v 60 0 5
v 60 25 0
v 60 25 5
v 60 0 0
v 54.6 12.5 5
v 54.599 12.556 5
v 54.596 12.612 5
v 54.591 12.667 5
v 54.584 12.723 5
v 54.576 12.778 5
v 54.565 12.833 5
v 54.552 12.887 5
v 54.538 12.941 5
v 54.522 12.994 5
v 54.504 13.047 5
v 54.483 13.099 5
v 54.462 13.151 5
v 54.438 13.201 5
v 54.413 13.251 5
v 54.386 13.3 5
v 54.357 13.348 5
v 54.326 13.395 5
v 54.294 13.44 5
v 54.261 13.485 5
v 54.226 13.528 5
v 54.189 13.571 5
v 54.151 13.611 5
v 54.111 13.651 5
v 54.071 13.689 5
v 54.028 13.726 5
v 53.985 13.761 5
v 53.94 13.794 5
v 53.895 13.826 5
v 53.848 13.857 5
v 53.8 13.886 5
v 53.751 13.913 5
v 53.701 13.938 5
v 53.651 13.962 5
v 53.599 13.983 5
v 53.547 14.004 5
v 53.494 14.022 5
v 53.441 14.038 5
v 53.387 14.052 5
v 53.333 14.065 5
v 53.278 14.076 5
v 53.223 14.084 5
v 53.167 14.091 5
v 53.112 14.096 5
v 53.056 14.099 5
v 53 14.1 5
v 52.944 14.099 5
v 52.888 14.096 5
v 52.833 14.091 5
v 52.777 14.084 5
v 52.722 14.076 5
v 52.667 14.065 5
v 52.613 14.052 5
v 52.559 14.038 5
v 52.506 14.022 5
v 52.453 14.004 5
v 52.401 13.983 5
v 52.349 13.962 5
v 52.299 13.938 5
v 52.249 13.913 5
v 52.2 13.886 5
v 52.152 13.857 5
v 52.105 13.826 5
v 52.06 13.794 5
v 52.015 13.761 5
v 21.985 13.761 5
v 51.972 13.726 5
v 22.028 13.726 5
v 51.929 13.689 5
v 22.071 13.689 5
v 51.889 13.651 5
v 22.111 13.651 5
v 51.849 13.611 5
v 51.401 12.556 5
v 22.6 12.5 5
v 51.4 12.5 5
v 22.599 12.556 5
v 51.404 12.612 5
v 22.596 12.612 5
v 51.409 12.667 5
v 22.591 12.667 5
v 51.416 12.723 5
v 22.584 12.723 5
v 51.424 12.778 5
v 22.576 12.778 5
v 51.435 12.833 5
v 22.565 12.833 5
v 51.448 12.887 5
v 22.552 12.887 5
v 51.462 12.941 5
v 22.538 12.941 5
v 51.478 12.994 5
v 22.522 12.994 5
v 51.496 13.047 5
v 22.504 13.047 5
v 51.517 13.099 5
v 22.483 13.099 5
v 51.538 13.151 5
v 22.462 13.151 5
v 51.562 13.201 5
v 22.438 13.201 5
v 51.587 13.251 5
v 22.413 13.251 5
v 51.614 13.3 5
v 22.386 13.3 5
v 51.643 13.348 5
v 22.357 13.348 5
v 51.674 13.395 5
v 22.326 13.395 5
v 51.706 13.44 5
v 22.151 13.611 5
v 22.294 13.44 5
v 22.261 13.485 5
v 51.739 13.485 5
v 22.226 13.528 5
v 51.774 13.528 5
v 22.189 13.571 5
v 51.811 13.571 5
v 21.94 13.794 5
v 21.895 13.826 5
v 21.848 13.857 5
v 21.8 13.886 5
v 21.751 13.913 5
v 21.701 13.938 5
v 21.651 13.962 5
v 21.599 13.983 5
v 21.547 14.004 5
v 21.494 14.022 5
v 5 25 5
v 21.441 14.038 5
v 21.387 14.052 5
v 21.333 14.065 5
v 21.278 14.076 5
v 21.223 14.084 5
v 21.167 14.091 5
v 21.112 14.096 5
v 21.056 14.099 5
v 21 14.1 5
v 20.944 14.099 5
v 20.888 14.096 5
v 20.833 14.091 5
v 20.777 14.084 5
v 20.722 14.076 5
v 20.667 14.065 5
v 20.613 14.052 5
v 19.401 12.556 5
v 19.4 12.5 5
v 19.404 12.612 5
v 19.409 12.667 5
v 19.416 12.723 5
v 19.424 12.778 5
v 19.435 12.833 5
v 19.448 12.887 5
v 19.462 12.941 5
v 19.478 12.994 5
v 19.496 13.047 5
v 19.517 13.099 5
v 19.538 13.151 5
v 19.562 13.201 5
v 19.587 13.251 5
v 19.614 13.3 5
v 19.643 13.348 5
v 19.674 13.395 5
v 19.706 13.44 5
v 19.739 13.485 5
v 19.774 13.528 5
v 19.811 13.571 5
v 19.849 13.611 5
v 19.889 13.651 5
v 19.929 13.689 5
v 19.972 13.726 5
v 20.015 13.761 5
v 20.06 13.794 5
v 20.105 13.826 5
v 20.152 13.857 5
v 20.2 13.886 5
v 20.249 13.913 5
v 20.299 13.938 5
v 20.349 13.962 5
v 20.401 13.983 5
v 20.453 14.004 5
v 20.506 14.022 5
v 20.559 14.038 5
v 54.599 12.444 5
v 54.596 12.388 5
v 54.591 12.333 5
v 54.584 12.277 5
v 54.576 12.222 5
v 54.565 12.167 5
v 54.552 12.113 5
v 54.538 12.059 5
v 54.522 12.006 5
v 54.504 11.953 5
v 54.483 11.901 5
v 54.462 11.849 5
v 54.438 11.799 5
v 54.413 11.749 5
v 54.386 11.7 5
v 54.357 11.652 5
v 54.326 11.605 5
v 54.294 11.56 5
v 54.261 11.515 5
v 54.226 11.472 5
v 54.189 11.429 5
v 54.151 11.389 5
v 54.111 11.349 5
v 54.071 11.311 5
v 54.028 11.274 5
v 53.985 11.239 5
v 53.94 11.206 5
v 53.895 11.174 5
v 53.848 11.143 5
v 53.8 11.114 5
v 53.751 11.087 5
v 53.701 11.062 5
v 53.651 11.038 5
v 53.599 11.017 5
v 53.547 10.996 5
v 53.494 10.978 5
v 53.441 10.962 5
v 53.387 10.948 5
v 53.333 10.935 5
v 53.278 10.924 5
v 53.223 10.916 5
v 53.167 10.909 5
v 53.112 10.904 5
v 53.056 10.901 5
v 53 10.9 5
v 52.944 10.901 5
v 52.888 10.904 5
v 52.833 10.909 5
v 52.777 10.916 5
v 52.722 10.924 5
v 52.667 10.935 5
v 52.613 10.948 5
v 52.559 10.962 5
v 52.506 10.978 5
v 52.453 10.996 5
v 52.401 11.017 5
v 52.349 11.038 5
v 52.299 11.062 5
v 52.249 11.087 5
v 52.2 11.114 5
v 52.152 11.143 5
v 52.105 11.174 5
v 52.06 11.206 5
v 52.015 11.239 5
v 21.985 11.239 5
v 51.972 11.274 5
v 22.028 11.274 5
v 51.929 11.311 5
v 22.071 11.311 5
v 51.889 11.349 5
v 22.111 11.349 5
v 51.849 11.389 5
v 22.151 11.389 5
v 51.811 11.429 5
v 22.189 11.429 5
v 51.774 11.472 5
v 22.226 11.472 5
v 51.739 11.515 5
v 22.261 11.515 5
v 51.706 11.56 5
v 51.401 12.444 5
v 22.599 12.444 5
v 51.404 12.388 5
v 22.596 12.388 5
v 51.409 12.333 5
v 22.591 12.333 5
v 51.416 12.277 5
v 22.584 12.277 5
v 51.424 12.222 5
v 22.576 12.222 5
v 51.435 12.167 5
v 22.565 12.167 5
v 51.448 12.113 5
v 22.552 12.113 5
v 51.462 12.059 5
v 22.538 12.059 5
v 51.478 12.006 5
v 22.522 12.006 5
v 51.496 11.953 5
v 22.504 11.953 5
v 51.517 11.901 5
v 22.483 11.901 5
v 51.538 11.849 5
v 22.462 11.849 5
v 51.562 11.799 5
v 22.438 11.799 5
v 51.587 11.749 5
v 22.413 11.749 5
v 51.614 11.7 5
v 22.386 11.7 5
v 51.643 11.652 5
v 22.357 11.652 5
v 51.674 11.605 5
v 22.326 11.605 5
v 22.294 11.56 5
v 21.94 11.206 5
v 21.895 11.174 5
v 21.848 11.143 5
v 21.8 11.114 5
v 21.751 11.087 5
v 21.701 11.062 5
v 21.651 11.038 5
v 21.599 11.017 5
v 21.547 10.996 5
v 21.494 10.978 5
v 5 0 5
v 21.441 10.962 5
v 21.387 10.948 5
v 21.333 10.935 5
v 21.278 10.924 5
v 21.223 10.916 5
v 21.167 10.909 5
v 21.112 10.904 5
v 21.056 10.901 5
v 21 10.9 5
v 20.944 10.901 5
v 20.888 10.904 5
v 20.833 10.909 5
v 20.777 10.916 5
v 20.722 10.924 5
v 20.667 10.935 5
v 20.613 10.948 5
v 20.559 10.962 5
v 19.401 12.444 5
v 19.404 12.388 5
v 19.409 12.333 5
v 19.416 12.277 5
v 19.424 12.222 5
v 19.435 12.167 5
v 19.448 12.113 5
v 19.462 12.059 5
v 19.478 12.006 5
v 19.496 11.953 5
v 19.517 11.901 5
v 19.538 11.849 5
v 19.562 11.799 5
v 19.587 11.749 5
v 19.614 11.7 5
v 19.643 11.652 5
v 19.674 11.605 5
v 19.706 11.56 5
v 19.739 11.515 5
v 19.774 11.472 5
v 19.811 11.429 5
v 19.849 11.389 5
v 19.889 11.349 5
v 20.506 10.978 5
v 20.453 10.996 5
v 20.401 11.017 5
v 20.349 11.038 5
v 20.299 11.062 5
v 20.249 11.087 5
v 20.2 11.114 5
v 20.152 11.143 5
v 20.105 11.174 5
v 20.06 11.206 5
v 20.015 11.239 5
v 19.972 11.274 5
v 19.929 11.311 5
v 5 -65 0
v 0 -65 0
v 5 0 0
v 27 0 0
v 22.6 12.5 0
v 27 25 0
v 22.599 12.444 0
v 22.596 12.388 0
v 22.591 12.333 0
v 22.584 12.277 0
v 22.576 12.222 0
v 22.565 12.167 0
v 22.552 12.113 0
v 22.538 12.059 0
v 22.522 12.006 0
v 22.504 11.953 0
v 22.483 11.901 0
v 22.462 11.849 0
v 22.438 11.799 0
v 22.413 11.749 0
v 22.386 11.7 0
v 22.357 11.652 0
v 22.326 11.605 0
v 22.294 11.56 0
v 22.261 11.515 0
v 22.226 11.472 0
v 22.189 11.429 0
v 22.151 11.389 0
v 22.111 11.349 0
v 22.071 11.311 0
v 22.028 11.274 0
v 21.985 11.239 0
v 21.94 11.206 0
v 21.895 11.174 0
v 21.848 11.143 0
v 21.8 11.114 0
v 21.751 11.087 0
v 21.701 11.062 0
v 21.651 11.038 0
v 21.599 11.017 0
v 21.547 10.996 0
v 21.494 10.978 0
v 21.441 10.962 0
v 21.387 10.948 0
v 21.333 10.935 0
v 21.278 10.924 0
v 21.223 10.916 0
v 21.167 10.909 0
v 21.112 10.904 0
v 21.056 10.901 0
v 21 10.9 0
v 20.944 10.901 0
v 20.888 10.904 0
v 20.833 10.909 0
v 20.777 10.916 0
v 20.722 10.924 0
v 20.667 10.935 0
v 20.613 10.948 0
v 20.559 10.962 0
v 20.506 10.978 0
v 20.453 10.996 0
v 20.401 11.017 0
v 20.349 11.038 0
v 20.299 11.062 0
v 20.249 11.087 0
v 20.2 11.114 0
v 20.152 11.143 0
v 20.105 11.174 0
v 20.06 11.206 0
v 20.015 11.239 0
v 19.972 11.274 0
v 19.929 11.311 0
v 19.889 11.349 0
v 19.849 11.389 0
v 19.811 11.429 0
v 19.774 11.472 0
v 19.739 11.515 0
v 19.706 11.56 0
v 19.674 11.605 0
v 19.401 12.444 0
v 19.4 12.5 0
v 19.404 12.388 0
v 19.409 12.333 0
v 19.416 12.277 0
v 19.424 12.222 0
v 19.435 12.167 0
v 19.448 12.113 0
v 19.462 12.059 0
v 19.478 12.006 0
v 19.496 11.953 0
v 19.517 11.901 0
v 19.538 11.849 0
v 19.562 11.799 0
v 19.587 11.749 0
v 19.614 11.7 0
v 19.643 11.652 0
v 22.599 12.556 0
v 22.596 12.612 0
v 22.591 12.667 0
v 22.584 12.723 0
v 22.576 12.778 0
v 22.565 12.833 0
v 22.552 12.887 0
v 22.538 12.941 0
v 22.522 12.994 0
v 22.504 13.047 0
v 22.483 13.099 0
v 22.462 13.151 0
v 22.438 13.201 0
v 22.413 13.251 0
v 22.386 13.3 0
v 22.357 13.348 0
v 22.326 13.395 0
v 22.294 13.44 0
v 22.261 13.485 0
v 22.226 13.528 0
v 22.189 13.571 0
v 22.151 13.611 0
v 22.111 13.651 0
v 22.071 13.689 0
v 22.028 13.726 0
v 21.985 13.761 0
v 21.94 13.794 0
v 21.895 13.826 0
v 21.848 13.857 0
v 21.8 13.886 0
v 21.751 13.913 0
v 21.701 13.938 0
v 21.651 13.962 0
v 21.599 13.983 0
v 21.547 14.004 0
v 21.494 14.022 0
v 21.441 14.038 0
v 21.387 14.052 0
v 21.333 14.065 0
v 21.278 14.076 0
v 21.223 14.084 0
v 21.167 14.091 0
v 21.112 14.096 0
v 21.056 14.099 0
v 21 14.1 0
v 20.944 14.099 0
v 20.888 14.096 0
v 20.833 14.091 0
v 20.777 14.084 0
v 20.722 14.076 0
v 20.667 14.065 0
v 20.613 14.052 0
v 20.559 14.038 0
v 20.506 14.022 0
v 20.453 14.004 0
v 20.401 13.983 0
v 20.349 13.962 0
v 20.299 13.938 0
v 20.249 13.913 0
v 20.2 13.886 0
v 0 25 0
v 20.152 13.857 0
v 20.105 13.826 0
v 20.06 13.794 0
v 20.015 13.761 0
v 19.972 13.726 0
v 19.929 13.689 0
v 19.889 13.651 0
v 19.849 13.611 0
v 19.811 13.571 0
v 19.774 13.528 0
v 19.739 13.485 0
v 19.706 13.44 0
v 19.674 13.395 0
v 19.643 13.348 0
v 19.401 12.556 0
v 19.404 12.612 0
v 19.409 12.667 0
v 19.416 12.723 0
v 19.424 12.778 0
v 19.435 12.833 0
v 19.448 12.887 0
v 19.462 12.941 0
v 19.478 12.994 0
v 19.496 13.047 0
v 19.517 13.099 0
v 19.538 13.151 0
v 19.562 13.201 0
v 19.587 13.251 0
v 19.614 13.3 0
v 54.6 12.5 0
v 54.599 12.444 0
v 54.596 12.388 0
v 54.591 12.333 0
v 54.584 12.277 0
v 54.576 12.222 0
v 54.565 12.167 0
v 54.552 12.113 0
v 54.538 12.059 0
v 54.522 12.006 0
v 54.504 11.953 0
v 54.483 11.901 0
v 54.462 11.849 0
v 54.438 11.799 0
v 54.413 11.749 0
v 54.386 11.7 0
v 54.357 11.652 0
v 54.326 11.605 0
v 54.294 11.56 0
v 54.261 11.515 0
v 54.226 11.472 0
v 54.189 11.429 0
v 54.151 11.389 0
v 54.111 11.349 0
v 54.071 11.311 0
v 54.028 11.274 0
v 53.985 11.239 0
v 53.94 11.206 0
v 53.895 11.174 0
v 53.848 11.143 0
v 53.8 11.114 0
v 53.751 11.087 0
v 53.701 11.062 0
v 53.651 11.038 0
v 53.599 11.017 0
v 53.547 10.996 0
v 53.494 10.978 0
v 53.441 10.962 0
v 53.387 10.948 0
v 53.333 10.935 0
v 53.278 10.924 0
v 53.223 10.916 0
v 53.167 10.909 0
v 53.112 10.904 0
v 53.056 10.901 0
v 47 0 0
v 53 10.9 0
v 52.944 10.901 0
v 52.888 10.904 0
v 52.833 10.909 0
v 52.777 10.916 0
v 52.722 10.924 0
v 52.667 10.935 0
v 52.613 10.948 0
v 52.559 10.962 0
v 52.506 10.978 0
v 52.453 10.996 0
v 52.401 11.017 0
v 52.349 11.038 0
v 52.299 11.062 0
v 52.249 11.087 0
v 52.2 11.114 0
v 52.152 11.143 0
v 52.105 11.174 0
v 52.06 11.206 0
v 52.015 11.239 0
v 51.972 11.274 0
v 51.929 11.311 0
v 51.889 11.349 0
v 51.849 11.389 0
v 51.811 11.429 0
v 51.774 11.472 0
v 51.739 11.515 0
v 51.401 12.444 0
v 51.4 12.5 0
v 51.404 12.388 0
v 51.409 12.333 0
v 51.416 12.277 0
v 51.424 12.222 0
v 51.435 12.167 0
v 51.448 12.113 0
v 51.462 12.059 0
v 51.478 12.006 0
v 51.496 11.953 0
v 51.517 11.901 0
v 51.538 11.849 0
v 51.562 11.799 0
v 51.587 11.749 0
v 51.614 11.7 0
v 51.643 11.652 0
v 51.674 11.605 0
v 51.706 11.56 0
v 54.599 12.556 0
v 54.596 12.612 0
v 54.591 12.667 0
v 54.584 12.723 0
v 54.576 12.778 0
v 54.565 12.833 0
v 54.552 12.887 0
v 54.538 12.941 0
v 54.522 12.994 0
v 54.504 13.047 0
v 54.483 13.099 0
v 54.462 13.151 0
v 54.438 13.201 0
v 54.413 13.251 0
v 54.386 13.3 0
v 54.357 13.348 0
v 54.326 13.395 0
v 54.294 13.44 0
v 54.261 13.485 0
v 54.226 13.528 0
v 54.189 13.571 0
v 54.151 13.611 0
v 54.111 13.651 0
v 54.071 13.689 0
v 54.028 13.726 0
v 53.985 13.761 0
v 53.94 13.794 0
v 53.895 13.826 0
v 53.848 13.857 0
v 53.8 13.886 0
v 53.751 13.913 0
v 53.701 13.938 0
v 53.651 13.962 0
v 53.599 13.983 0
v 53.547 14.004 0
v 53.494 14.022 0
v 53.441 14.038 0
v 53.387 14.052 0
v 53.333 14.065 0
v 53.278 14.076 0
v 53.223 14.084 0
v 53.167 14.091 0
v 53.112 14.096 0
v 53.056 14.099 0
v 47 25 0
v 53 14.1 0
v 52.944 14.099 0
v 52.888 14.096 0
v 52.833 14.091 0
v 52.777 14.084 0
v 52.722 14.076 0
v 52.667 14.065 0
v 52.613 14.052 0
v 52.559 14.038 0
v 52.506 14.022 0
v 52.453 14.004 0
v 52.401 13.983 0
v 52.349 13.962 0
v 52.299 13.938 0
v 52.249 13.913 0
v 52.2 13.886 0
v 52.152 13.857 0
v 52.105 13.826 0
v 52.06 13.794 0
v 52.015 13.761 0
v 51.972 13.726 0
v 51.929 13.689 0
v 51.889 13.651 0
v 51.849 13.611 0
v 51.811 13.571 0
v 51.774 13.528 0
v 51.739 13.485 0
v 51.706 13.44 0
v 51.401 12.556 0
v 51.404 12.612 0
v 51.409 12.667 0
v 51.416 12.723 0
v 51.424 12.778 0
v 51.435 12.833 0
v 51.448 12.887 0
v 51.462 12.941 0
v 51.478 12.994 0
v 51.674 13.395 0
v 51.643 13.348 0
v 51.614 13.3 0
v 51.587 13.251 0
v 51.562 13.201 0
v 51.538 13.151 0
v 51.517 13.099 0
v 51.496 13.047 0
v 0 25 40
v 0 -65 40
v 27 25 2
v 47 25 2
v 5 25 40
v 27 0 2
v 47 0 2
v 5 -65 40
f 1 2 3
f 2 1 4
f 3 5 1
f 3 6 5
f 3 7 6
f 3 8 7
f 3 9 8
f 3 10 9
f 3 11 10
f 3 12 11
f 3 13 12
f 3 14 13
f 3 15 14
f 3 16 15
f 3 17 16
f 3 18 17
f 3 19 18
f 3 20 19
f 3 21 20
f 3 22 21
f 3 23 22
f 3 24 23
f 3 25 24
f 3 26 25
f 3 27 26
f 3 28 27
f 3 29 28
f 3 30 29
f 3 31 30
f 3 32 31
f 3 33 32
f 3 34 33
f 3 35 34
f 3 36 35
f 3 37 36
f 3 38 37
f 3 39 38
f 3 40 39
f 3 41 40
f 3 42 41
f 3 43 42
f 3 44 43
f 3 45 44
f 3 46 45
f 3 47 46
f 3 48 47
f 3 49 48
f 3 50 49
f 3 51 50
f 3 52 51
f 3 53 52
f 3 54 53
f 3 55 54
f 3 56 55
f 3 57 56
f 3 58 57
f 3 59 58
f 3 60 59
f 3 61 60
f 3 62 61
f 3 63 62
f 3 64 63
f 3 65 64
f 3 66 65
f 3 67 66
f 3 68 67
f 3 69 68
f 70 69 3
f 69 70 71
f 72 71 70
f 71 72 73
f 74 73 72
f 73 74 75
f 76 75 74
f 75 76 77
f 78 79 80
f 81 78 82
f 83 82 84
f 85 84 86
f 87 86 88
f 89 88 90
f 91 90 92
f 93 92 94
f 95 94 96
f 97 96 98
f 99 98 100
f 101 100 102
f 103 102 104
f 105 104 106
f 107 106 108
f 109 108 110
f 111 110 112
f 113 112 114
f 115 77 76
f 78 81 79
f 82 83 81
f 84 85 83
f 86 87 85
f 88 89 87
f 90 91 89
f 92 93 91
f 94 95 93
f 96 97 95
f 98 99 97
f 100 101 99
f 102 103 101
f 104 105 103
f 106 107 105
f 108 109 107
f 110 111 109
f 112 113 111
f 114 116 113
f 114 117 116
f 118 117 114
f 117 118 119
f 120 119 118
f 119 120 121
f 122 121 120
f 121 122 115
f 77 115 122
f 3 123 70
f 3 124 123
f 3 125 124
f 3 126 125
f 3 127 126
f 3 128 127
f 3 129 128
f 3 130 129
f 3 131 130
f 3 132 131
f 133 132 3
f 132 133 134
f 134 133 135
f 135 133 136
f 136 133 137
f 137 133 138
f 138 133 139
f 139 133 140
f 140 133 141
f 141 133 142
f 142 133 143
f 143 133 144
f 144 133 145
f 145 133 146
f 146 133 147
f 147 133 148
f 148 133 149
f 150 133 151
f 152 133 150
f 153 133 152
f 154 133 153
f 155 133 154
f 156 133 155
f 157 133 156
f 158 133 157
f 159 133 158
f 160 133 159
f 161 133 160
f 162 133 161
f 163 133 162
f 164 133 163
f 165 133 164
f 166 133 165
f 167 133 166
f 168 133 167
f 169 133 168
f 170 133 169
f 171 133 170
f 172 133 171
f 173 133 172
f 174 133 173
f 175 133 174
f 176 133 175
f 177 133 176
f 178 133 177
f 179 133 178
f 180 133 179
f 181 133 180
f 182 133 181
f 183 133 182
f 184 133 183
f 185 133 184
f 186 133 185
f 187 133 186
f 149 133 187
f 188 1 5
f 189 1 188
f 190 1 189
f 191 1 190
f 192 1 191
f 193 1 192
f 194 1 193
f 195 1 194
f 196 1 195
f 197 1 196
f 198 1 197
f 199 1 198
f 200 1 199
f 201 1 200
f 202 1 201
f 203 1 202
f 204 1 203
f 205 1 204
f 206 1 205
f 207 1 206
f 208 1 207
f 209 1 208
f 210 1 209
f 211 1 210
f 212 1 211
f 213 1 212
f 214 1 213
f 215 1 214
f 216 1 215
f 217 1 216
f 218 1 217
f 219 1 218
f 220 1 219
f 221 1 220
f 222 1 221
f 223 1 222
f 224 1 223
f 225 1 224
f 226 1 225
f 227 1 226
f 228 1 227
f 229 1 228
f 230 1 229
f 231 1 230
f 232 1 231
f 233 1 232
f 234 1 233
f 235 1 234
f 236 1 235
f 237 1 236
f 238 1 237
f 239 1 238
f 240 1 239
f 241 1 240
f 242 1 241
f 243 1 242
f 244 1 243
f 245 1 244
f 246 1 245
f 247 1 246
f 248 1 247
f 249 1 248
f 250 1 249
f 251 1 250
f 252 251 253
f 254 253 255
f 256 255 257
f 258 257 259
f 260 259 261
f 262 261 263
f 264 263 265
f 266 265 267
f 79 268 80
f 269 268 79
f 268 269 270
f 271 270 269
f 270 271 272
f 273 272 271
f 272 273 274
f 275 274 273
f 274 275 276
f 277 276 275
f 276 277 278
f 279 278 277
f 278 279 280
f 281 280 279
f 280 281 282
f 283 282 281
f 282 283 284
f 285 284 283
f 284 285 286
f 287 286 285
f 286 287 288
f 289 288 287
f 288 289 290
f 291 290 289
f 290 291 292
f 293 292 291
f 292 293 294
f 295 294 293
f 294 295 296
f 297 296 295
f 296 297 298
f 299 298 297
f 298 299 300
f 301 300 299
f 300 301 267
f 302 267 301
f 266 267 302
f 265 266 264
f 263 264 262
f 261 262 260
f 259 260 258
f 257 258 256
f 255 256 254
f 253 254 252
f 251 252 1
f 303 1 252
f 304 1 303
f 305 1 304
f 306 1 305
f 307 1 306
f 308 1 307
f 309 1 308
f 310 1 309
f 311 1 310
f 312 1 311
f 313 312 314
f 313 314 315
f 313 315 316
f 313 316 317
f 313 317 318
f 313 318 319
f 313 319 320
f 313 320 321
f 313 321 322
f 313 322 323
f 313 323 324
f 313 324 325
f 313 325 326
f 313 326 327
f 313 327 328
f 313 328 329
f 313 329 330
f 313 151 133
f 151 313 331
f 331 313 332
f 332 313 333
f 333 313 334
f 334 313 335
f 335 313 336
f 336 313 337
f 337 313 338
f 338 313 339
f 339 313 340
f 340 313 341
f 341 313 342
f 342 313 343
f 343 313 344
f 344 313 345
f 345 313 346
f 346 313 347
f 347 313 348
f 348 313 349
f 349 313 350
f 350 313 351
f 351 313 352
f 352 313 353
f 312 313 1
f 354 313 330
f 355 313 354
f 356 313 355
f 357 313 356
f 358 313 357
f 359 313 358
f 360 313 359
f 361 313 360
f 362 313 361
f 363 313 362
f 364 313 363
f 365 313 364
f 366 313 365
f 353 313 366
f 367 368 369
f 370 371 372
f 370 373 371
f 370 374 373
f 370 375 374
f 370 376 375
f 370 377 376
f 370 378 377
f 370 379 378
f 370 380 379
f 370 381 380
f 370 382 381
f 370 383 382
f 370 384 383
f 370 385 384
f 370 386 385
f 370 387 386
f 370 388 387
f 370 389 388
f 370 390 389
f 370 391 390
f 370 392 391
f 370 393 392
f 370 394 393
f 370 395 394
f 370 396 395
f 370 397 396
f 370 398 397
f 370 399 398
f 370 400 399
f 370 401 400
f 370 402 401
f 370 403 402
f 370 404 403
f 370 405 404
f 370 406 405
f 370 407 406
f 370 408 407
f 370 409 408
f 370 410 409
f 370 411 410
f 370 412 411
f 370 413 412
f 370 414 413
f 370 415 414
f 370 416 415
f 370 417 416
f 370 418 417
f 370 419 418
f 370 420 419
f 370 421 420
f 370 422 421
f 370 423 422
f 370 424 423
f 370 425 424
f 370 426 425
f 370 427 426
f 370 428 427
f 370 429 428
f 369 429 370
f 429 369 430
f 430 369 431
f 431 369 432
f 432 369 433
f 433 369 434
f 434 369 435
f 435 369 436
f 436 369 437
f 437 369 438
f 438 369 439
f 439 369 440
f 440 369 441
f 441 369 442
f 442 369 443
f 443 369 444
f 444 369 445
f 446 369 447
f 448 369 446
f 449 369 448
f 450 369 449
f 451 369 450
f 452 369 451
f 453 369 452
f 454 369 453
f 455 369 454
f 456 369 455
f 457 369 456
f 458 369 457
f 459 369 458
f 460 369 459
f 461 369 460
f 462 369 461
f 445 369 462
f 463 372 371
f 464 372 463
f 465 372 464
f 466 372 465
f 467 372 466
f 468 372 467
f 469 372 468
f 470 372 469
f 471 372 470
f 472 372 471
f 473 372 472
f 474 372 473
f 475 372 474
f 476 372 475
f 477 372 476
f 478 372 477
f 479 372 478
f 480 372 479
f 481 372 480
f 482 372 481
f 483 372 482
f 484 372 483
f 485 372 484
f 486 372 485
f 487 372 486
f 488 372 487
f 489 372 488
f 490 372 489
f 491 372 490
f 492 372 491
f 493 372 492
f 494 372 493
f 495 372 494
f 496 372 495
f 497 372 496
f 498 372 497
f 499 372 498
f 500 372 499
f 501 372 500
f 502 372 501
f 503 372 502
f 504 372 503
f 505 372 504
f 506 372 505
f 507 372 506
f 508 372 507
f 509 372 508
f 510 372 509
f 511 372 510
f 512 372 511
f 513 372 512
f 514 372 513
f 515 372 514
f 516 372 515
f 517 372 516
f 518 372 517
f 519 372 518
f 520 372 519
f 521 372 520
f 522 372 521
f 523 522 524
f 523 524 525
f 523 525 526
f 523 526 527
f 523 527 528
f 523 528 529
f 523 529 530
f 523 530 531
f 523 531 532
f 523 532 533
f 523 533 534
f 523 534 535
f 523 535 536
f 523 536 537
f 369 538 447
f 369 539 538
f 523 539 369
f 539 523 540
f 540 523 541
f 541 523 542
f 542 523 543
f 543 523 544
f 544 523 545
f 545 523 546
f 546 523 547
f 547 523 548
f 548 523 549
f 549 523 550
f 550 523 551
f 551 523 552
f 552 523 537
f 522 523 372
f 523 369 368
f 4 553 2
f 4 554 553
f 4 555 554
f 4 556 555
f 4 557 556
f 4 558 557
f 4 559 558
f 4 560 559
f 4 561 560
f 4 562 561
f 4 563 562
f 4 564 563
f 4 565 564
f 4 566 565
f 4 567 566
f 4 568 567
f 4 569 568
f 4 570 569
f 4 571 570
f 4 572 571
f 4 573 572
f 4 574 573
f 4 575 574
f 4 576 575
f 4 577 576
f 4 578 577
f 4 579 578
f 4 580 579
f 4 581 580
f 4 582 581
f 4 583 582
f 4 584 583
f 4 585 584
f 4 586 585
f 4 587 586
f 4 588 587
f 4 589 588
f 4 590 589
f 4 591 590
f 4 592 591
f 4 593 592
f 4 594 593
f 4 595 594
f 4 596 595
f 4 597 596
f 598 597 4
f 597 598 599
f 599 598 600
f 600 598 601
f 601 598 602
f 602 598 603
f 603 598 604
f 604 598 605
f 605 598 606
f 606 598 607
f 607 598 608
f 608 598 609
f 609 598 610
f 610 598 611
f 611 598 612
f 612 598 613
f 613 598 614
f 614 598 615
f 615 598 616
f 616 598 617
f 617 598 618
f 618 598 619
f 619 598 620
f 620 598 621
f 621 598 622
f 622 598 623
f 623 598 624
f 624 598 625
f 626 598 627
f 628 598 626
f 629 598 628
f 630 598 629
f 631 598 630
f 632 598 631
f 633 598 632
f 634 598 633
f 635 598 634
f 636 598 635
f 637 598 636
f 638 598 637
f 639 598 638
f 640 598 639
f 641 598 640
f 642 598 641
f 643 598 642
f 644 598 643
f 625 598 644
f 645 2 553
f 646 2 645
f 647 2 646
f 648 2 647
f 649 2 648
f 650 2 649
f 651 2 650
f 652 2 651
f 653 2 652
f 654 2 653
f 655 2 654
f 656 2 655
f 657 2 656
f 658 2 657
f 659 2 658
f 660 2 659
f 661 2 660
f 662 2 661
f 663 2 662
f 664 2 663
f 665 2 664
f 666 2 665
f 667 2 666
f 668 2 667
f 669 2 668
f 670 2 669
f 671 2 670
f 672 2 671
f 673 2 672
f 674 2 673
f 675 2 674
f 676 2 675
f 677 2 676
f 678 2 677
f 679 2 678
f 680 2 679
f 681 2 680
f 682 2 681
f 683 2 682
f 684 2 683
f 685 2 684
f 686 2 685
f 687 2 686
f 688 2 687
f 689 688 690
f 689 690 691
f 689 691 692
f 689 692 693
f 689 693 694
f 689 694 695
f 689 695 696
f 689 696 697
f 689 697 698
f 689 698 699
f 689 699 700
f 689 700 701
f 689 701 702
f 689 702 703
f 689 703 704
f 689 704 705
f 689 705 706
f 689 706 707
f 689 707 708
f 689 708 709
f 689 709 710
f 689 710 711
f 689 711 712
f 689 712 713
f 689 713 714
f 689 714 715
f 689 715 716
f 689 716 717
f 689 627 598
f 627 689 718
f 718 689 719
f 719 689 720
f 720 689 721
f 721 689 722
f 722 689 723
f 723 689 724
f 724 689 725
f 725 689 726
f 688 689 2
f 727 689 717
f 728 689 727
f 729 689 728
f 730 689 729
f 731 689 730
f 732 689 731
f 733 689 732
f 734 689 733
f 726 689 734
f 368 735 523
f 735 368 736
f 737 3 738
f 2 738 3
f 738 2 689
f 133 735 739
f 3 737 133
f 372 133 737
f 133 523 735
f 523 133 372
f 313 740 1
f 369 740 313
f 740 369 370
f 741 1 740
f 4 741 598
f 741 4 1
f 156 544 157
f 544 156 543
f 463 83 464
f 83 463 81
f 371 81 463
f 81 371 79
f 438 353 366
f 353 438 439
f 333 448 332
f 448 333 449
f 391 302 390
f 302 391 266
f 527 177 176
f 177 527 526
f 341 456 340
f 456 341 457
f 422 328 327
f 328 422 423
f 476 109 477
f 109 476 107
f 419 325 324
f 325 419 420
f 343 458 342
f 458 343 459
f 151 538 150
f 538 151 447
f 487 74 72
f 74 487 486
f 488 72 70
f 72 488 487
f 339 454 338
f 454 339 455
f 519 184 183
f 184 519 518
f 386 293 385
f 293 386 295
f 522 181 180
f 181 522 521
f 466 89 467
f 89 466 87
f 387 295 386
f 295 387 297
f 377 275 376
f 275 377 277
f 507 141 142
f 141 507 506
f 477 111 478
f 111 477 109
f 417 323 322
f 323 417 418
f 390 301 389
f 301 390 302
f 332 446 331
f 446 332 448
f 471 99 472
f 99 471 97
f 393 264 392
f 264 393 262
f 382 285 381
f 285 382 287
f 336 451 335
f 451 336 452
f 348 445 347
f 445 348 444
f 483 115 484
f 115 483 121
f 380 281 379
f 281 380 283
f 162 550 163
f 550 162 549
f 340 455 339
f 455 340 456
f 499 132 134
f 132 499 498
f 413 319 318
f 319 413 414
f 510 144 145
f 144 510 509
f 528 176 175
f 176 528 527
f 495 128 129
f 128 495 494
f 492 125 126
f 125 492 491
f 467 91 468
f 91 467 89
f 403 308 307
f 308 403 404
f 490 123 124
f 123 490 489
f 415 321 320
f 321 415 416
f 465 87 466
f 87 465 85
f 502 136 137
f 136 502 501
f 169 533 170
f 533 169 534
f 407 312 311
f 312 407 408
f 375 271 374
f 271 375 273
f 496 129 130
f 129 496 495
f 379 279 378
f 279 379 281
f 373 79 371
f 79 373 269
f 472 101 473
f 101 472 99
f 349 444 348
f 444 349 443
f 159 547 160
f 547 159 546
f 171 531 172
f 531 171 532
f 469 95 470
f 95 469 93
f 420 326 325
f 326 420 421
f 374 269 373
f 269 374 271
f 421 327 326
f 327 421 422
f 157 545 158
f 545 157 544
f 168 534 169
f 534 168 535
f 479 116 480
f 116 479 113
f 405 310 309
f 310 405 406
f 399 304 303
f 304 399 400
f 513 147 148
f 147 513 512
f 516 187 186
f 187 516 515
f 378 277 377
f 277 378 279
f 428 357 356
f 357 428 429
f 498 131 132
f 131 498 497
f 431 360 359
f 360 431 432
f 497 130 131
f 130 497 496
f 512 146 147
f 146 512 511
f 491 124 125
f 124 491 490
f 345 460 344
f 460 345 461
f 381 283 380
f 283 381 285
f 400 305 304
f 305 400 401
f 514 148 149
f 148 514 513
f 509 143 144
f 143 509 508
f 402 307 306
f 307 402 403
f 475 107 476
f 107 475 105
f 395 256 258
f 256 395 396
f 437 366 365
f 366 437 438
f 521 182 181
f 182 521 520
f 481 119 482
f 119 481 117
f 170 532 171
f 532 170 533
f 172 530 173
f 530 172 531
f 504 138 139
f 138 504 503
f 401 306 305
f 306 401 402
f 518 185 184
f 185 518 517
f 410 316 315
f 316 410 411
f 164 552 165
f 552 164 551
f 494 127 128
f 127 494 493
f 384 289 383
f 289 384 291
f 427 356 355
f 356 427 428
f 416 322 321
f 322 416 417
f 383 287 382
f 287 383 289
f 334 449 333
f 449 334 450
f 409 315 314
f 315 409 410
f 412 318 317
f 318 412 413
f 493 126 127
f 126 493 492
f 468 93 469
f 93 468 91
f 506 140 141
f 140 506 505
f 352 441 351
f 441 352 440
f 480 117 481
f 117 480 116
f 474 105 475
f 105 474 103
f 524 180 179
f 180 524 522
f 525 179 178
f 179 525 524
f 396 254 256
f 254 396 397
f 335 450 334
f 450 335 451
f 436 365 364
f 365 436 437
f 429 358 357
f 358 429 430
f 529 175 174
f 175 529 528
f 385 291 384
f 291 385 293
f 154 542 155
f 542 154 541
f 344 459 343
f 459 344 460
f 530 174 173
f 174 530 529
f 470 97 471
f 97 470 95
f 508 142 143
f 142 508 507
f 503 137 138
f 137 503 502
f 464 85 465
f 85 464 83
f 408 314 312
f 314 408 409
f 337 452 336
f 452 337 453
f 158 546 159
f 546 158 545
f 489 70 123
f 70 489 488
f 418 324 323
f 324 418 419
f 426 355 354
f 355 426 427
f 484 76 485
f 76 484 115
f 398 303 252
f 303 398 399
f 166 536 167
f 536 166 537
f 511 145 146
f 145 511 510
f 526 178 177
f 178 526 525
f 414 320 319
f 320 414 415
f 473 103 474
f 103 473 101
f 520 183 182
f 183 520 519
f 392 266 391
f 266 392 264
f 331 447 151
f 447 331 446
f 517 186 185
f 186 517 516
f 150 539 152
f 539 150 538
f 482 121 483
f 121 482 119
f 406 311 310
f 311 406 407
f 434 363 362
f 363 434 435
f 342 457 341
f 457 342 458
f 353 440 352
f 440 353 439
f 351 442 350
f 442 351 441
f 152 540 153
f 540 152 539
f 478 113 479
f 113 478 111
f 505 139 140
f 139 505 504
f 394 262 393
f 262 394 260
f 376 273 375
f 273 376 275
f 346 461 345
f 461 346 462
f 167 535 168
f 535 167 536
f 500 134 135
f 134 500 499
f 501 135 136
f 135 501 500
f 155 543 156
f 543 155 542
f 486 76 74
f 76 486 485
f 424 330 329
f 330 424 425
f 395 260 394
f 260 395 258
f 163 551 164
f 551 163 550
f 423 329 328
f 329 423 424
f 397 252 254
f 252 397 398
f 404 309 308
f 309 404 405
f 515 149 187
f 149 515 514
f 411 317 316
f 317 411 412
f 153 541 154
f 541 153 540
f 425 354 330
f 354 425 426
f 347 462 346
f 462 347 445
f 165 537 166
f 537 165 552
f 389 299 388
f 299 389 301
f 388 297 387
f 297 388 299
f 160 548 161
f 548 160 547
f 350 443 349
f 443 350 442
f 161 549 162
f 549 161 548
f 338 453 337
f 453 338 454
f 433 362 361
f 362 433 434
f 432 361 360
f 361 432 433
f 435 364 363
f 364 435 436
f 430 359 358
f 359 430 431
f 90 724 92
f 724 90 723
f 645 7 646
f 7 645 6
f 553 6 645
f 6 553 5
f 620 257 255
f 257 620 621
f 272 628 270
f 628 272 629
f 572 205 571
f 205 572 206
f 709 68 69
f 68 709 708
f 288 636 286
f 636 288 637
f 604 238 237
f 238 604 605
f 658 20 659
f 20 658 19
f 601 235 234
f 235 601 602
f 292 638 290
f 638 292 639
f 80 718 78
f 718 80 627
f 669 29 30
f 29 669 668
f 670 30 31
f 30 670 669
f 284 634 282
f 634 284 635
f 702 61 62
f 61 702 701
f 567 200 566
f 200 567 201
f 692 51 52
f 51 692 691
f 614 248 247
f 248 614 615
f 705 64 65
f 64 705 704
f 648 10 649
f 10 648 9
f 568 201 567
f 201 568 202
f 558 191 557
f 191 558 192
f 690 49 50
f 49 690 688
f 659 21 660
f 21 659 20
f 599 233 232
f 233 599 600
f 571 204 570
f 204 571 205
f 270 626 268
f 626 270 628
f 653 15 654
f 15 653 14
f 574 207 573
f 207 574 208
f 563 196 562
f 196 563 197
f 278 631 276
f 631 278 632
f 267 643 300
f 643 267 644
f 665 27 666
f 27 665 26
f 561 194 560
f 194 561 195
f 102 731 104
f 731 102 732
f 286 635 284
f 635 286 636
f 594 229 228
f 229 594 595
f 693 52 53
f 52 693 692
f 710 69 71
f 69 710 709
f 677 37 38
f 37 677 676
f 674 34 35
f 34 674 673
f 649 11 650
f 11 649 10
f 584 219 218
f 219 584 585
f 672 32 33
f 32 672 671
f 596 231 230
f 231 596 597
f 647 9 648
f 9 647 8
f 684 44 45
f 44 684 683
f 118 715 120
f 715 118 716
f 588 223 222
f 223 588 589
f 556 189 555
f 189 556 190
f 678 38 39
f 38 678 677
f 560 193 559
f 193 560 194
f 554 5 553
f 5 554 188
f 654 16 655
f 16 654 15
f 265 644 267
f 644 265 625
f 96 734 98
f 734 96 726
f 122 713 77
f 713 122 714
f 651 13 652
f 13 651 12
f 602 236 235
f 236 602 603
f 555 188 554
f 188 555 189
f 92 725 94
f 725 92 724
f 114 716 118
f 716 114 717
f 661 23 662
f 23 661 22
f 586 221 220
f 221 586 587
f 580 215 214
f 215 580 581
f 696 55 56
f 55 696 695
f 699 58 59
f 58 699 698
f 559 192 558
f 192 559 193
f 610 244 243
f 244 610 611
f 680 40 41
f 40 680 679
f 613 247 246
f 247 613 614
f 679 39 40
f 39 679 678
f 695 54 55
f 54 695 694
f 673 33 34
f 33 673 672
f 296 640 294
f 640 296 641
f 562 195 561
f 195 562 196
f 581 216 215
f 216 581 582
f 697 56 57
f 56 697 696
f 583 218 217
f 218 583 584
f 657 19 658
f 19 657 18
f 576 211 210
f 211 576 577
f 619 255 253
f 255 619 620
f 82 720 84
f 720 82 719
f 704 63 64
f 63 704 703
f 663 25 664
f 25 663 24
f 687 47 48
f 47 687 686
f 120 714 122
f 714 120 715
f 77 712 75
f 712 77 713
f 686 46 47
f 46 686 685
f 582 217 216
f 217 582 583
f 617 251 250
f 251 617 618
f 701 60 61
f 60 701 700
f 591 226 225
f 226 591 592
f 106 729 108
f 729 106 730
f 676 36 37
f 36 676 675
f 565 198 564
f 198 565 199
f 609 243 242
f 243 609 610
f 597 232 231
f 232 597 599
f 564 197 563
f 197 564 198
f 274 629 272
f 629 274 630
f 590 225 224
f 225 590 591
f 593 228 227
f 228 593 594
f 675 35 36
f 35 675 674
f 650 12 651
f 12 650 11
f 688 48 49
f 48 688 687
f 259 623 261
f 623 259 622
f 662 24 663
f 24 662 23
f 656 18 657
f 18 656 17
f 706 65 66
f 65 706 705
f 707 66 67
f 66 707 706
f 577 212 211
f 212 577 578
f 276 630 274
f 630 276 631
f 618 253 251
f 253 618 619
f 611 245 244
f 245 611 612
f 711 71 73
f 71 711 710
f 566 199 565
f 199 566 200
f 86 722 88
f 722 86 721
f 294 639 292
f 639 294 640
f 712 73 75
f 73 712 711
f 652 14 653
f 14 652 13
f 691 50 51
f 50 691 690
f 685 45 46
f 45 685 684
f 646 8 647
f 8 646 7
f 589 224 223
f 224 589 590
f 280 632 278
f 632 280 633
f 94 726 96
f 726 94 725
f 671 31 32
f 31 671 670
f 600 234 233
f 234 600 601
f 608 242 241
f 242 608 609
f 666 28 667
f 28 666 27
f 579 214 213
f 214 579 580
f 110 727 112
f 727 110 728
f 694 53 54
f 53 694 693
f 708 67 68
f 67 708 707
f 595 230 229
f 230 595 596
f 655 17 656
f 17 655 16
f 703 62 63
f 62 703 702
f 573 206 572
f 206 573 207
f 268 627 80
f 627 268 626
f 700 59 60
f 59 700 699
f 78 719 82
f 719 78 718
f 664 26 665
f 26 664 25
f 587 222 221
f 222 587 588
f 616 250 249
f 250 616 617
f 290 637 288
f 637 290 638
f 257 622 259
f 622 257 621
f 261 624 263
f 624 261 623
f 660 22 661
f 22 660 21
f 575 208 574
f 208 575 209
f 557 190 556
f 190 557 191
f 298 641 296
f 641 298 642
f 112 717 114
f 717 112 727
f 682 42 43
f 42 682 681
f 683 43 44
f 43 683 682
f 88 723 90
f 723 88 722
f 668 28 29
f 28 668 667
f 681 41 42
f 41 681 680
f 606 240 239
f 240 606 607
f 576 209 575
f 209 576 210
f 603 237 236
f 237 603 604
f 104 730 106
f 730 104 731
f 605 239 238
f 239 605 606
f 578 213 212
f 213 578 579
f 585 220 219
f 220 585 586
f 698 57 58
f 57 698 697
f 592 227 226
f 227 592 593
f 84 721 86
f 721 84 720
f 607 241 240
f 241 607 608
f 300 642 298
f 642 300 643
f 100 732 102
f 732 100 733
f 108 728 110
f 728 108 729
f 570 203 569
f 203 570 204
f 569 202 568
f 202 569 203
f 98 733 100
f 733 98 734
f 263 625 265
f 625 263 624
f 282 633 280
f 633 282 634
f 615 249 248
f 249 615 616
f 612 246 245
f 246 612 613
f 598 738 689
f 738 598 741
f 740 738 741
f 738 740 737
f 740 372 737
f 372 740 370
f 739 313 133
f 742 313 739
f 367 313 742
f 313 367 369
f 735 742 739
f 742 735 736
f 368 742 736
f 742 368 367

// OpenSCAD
// hole distance 32
// hole m3
// border distance 21

width = 60;
length_holder = 25;
length = 90;
thickness = 5;

diameter_screw = 3.2;
border_distance = 21;
hole_distance = 32;

height = 40;

$fn = 180;

metal_height = 2;
metal_length = 20;

difference() {
    cube([width, length_holder, thickness]);
    translate([border_distance, length_holder / 2, 0]) cylinder(d=3.2, thickness);
    
    translate([border_distance + hole_distance, length_holder / 2, 0]) cylinder(d=3.2, thickness);
    
    translate([border_distance + hole_distance / 2 - metal_length / 2, 0, 0]) cube([metal_length, length_holder, metal_height]);
}


translate([0, -length + length_holder, 0]) cube([thickness, length, height]);
